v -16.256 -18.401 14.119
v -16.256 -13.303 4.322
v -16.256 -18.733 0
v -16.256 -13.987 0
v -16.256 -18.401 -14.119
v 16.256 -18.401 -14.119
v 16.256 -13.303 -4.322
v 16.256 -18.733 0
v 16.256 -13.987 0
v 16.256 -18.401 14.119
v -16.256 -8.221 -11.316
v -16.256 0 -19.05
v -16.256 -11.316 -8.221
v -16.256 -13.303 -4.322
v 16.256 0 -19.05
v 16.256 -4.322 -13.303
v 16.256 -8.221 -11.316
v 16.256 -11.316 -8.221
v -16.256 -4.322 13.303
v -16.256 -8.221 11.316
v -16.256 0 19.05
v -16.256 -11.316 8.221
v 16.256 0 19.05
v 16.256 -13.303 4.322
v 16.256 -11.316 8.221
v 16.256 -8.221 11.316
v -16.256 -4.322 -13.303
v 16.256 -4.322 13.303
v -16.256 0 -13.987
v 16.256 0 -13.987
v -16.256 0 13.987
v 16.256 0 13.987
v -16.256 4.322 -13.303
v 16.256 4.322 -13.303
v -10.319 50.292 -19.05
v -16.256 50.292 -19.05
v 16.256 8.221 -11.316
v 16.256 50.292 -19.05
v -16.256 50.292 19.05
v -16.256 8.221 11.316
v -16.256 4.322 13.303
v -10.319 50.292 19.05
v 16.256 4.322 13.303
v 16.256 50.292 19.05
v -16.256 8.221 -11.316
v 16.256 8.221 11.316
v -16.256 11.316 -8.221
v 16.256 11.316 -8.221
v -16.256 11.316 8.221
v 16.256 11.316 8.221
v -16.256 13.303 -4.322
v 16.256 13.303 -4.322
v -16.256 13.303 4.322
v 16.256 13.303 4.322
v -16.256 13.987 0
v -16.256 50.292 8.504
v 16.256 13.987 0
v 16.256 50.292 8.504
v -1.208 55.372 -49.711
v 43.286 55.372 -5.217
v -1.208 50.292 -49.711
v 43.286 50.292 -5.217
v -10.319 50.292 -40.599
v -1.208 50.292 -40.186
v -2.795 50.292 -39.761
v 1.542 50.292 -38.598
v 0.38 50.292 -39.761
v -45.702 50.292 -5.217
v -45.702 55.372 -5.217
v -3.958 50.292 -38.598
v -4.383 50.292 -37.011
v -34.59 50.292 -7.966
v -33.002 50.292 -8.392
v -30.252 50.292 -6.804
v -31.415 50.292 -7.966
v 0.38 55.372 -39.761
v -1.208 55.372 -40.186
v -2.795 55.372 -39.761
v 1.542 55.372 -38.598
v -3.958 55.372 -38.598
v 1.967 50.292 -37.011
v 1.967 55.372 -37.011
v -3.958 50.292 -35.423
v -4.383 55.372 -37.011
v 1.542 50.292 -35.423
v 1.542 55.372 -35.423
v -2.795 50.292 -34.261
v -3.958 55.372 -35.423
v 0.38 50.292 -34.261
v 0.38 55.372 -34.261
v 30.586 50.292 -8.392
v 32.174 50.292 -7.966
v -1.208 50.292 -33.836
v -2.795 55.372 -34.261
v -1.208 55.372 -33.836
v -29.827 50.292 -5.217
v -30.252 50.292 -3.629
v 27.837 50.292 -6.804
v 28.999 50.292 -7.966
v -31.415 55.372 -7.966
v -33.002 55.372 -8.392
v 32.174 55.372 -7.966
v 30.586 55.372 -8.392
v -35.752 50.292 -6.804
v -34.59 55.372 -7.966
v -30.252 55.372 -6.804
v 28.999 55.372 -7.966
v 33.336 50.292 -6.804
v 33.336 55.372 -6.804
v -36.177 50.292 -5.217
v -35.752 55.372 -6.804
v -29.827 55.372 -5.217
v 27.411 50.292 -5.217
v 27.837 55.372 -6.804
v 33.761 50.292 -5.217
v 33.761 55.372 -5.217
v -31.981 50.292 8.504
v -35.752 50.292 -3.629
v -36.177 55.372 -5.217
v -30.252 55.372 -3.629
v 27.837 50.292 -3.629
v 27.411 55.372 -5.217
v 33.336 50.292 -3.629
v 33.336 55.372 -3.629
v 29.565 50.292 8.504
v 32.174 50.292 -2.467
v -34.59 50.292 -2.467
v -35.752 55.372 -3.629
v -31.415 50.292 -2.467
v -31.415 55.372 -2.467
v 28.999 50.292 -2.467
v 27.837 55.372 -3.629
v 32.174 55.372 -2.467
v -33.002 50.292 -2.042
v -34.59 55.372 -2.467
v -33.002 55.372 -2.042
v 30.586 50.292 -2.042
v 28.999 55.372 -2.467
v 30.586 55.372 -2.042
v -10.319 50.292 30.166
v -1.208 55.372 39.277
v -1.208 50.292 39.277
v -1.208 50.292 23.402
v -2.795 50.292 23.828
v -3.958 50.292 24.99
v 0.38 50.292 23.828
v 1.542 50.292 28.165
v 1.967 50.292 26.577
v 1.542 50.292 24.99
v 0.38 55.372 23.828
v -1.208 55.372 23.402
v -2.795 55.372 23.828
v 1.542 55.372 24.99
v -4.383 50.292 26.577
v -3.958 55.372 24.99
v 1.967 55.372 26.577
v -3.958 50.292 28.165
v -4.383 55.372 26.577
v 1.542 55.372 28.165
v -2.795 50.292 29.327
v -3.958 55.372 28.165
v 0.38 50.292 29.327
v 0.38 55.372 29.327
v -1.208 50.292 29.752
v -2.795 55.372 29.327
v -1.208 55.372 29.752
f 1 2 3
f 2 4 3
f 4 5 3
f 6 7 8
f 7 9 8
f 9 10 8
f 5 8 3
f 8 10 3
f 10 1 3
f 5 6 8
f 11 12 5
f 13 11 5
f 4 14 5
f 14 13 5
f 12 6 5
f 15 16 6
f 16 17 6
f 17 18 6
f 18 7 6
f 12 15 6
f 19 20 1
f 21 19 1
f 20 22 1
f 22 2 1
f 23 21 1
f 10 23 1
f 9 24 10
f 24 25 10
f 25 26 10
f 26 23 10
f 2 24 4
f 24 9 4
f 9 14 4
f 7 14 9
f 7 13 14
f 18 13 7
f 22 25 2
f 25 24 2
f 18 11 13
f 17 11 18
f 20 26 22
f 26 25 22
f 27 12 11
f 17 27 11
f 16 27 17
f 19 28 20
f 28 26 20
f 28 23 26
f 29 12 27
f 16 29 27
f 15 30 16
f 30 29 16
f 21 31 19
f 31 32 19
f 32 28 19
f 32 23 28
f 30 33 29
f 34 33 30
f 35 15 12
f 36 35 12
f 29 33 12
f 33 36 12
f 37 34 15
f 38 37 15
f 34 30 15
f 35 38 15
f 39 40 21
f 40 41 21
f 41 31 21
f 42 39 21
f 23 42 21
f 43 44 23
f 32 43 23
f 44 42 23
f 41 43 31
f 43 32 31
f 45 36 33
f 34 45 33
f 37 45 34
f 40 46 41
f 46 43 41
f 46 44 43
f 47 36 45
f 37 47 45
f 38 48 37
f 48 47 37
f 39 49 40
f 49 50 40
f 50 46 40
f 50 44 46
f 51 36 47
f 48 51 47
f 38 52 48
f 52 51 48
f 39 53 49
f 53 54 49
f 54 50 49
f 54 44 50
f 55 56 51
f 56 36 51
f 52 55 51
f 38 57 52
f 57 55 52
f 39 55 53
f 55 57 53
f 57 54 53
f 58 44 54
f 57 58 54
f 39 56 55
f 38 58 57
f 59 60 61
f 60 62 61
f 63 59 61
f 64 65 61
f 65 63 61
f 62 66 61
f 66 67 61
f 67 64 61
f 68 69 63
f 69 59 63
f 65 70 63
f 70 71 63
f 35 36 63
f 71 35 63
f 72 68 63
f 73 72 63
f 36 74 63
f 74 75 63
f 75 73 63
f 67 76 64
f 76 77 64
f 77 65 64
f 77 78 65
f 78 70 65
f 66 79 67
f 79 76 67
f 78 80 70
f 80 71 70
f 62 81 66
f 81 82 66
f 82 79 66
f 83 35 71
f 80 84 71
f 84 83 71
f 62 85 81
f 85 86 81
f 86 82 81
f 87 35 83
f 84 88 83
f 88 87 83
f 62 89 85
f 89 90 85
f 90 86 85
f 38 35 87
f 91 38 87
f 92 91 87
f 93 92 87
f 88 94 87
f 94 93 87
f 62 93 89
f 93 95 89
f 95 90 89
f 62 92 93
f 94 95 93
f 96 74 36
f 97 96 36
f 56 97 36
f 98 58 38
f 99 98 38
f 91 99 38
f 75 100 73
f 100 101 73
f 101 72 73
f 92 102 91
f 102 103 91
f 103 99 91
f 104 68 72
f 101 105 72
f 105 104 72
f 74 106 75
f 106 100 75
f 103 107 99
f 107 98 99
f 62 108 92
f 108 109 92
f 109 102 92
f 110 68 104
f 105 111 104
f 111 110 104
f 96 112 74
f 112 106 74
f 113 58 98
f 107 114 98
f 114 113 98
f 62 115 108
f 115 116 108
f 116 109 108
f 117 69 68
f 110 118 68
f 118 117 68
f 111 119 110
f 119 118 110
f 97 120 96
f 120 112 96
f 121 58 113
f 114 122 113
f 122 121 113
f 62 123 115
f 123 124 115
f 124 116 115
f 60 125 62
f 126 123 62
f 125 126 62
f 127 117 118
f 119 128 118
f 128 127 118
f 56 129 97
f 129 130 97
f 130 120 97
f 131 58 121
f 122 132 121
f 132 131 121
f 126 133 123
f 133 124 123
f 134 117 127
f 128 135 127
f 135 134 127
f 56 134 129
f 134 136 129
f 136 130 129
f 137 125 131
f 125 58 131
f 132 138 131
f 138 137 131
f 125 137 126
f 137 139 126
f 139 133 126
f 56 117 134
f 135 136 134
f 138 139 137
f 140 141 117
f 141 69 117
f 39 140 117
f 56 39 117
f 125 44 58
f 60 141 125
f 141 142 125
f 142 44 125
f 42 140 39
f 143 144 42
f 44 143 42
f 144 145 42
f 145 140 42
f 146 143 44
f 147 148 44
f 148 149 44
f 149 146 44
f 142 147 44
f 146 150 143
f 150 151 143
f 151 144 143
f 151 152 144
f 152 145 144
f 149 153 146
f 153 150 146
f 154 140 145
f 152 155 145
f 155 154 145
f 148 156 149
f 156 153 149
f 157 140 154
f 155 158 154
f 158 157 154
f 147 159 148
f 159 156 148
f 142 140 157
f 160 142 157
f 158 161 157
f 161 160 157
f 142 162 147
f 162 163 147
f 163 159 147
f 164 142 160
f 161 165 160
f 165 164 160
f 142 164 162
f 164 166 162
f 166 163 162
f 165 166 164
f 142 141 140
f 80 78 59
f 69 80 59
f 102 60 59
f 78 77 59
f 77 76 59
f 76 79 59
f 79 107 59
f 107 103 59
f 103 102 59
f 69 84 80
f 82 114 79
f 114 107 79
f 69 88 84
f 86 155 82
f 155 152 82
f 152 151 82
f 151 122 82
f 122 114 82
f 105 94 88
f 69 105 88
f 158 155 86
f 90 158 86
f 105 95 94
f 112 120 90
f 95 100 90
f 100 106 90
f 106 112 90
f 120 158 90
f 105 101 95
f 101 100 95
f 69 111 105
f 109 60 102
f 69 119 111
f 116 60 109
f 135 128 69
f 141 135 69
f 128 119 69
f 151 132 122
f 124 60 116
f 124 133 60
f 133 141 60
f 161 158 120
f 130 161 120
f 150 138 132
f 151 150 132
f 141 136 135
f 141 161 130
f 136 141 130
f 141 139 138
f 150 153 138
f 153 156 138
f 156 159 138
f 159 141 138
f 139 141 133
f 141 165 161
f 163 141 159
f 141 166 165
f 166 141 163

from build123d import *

# Parameters (mm, degrees)
SKETCH1_W           = 32.512
SKETCH1_H           = 38.1
BOSS_EXTRUDE1_DEPTH = 50.292
BOSS_EXTRUDE2_DEPTH = 32.512
SKETCH3_R           = 13.9871704
CUT_EXTRUDE1_DEPTH  = 127
BOSS_EXTRUDE3_DEPTH = 5.08
SKETCH5_R           = 3.175
CUT_EXTRUDE2_DEPTH  = 101.256951791


with BuildPart() as part:
    # Sketch1 → Boss-Extrude1 (new body)
    with BuildSketch(Plane(origin=(0, 0, 0), x_dir=(1, 0, 0), z_dir=(0, 1, 0))):
        Rectangle(SKETCH1_W, SKETCH1_H)
    extrude(amount=BOSS_EXTRUDE1_DEPTH)

    # Sketch2 → Boss-Extrude2 (add)
    with BuildSketch(Plane(origin=(16.256, 0, 0), x_dir=(0, 0, -1), z_dir=(1, 0, 0))):
        with BuildLine():
            Line((-19.05, 0), (-14.119497191, -18.400886991))
            ThreePointArc((-14.119497191, -18.400886991), (0, -18.733351542), (14.119497191, -18.400886991))
            Line((14.119497191, -18.400886991), (19.05, 0))
            Line((19.05, 0), (-19.05, 0))
        make_face()
    extrude(amount=-BOSS_EXTRUDE2_DEPTH)

    # Sketch3 → Cut-Extrude1 (cut)
    with BuildSketch(Plane(origin=(16.256, 0, 0), x_dir=(0, 0, -1), z_dir=(1, 0, 0))):
        Circle(SKETCH3_R)
    extrude(amount=-CUT_EXTRUDE1_DEPTH, mode=Mode.SUBTRACT)

    # Sketch4 → Boss-Extrude3 (add)
    with BuildSketch(Plane(origin=(0, 50.292, 0), x_dir=(1, 0, 0), z_dir=(0, 1, 0))):
        Polygon((-1.207933769, -39.277381208), (-45.702074629, 5.216759653), (-1.207933769, 49.710900513), (43.286207092, 5.216759653), align=None)
    extrude(amount=BOSS_EXTRUDE3_DEPTH)

    # Sketch5 → Cut-Extrude2 (cut, through all)
    with BuildSketch(Plane(origin=(0, 55.372, 0), x_dir=(1, 0, 0), z_dir=(0, 1, 0))):
        with Locations(Location((30.586207092, 5.216759653, 0), (0, 0, 270))):
            Circle(SKETCH5_R)
        with Locations(Location((-1.207933769, -26.577381208, 0), (0, 0, 270))):
            Circle(SKETCH5_R)
        with Locations(Location((-1.207933769, 37.010900513, 0), (0, 0, 90))):
            Circle(SKETCH5_R)
        with Locations(Location((-33.002074629, 5.216759653, 0), (0, 0, 90))):
            Circle(SKETCH5_R)
    extrude(amount=-CUT_EXTRUDE2_DEPTH, mode=Mode.SUBTRACT)


solid = part.part
